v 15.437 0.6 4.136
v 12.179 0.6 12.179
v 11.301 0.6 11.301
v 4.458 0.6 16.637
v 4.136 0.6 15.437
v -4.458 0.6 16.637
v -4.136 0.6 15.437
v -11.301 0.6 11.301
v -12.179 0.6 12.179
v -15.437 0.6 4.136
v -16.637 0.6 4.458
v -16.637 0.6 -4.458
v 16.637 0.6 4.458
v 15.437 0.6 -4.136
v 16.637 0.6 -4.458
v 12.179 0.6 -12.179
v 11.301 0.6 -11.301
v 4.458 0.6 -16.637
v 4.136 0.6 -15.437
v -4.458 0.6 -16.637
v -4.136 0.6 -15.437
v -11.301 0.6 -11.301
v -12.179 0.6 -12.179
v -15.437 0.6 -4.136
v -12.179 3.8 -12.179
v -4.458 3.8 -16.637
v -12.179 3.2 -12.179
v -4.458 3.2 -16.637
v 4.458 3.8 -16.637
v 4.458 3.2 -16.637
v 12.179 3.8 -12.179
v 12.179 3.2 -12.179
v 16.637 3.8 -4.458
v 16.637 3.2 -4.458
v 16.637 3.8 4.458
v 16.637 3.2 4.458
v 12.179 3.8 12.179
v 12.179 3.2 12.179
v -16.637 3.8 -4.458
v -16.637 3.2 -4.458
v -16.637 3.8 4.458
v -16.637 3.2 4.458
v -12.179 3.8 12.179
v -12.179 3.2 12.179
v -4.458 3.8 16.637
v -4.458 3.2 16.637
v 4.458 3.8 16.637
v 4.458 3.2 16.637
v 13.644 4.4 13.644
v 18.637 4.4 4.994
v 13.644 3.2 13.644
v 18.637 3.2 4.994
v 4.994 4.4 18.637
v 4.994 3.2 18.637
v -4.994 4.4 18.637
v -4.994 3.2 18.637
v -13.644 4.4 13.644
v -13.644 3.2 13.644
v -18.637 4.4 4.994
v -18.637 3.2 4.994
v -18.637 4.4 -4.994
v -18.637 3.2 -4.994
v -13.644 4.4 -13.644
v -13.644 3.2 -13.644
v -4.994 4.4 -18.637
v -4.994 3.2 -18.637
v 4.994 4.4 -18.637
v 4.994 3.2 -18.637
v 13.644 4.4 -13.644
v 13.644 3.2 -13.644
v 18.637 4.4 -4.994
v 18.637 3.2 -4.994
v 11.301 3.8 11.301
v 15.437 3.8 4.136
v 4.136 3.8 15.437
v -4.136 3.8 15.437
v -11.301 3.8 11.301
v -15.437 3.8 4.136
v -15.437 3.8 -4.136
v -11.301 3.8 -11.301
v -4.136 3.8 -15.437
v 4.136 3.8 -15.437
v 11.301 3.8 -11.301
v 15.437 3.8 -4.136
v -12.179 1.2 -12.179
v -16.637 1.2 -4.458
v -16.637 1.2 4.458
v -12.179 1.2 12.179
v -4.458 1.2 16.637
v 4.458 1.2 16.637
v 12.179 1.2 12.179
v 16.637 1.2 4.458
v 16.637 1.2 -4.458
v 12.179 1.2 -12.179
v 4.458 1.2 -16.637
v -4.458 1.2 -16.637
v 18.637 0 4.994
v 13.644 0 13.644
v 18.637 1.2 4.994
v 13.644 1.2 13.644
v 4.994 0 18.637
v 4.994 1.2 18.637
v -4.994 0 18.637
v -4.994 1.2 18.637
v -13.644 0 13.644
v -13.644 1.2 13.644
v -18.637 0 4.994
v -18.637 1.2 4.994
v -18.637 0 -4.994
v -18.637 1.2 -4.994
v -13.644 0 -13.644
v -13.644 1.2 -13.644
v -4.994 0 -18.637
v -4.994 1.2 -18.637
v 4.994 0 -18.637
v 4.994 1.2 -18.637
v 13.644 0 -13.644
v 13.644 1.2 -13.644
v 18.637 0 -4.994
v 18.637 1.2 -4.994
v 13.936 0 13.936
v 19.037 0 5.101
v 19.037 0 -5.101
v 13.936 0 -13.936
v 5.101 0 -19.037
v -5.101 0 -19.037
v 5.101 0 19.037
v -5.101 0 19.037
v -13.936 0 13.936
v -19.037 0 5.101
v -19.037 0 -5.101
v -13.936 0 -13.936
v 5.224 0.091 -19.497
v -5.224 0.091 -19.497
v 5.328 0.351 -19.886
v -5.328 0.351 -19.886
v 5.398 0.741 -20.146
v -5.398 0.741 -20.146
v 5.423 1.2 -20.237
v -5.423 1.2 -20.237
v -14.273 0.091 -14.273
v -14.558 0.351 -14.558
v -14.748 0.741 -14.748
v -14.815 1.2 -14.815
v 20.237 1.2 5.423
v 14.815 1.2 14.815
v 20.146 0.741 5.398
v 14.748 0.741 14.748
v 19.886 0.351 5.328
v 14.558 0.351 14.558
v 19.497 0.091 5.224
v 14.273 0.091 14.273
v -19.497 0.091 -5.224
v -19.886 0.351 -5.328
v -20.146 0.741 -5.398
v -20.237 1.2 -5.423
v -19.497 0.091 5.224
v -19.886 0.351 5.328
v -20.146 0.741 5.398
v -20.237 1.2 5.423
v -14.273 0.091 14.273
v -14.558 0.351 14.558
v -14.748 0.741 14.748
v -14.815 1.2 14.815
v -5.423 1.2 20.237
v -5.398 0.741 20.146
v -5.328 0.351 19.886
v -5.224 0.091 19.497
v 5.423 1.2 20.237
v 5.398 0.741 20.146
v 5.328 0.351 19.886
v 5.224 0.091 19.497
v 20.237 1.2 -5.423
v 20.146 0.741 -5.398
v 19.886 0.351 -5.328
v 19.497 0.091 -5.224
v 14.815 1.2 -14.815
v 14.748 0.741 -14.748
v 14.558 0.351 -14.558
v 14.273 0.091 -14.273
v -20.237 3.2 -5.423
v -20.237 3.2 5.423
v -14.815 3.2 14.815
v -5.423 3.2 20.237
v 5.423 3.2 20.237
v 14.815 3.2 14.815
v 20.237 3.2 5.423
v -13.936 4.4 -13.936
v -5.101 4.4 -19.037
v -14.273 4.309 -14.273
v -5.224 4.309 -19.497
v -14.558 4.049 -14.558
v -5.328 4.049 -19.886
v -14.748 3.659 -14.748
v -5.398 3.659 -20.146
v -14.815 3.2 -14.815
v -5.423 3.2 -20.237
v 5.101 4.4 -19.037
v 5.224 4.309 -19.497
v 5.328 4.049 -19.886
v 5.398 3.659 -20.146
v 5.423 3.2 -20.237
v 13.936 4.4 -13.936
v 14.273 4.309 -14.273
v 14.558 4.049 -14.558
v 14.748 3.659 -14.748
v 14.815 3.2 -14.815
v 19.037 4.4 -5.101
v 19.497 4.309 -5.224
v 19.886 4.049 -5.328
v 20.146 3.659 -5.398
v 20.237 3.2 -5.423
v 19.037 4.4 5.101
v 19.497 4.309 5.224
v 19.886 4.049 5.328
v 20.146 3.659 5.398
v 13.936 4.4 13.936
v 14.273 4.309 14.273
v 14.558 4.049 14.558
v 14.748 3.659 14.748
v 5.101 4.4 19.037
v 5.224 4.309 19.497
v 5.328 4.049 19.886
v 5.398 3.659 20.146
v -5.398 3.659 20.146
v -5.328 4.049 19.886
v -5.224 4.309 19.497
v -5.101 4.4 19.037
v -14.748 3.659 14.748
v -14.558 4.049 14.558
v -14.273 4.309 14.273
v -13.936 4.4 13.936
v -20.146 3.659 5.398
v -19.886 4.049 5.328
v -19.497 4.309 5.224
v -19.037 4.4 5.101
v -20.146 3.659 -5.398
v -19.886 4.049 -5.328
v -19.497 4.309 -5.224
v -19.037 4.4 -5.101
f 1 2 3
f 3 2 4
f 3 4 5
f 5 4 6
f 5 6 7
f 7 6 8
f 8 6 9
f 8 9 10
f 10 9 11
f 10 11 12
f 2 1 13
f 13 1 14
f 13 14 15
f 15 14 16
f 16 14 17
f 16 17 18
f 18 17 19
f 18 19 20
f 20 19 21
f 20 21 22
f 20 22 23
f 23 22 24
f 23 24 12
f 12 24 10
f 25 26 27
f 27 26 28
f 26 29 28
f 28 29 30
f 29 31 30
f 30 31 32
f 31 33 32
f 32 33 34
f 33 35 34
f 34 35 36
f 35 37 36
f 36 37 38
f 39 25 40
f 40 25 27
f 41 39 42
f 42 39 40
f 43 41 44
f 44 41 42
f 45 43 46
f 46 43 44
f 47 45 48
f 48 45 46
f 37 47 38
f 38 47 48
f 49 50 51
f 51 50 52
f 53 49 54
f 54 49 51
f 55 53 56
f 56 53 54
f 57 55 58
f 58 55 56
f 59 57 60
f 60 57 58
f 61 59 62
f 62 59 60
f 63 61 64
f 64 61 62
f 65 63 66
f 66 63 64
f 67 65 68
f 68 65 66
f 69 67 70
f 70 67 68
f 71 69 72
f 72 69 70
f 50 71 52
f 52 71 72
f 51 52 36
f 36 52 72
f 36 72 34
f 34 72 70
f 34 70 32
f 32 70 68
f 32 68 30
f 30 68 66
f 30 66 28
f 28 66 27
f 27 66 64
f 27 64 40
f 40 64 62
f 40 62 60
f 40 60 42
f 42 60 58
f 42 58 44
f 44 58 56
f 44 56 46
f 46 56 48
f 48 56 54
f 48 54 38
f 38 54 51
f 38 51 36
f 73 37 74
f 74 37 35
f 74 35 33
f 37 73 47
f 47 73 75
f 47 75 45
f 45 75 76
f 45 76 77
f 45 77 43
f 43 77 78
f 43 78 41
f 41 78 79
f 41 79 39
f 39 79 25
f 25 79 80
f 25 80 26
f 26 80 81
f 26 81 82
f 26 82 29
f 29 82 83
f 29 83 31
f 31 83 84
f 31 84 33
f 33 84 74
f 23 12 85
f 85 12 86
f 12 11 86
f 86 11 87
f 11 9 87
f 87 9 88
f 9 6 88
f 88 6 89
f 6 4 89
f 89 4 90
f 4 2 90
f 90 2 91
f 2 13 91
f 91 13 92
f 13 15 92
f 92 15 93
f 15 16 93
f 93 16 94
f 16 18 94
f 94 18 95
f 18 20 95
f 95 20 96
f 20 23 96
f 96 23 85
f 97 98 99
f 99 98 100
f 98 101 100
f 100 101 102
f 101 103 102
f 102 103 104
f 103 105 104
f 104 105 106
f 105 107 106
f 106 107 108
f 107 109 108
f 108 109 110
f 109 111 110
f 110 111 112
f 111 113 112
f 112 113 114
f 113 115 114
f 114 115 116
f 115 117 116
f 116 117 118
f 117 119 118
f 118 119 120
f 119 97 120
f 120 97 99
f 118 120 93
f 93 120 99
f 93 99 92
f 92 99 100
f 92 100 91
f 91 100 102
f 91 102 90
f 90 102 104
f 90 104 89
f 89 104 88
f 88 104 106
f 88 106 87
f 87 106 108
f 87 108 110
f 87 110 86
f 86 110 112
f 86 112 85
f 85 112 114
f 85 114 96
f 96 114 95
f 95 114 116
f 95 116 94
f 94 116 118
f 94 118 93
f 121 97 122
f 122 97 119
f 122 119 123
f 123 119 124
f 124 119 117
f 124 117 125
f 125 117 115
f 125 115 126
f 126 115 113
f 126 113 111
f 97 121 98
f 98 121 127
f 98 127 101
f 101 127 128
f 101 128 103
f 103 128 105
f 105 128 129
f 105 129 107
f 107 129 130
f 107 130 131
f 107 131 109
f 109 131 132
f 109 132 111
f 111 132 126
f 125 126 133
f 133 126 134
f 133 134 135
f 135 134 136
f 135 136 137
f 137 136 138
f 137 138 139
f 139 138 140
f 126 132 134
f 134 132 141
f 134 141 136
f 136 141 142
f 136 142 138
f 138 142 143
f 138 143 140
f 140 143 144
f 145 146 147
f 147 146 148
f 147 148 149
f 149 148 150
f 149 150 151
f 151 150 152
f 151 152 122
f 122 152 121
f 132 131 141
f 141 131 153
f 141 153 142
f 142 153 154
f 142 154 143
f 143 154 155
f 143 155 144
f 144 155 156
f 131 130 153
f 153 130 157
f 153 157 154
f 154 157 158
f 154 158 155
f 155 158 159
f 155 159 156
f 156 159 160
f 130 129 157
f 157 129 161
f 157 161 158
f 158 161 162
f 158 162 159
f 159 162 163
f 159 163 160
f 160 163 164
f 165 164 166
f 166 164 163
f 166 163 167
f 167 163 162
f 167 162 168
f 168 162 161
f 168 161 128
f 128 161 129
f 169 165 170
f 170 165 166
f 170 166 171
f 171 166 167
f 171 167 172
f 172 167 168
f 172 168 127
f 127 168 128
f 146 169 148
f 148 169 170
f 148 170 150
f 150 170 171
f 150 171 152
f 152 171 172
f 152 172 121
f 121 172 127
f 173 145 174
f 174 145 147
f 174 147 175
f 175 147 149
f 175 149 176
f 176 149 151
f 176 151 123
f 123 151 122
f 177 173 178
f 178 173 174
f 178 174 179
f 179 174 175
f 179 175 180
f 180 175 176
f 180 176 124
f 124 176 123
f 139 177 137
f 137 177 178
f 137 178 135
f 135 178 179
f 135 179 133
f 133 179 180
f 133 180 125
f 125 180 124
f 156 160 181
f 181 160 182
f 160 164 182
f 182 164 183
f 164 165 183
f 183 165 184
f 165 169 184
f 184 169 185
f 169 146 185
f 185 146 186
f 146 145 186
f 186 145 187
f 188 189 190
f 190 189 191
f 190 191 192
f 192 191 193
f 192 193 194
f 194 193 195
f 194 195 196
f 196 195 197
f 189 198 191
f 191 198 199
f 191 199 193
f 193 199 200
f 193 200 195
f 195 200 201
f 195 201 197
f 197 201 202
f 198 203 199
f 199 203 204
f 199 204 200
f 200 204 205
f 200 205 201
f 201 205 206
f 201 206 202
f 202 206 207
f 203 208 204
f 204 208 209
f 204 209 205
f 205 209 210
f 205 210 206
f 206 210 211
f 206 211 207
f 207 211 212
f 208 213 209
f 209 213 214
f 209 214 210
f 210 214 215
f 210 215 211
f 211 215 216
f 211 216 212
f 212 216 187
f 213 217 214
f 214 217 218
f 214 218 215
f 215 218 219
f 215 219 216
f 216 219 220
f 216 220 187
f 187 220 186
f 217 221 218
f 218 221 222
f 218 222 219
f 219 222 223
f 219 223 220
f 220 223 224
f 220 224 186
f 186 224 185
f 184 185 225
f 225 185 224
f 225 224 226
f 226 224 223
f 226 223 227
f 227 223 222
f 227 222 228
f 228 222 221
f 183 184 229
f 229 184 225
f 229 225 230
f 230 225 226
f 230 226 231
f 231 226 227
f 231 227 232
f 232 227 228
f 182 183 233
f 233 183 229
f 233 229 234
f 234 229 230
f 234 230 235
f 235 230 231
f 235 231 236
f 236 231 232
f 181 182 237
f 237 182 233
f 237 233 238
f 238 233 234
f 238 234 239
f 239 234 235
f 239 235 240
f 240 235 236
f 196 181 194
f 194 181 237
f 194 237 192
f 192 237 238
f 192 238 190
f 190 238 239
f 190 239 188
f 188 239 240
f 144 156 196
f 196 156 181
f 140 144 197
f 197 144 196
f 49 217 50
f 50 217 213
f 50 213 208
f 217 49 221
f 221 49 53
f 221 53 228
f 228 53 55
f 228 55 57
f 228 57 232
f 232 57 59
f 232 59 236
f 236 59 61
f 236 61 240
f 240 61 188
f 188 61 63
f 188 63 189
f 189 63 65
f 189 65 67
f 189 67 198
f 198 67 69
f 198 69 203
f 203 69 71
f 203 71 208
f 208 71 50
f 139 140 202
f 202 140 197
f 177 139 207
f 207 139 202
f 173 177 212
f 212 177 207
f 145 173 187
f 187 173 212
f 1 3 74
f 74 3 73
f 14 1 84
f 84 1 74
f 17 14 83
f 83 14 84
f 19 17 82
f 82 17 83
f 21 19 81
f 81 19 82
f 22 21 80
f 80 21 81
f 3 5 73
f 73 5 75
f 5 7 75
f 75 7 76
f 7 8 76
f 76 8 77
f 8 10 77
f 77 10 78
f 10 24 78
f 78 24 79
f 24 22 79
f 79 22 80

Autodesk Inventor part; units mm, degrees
ref_plane "YZ Plane" through (0, 0, 0) normal (1, 0, 0) x (0, 1, 0)
ref_plane "XZ Plane" through (0, 0, 0) normal (0, 1, 0) x (-1, 0, 0)
sketch "스케치1" plane through (0, 0, 0) normal (0, 1, 0) x (-1, 0, 0)
  line L0 (12.4723, -12.4723) -> (4.5652, -17.0375)
  line L1 (4.5652, -17.0375) -> (-4.5652, -17.0375)
  line L2 (-4.5652, -17.0375) -> (-12.4723, -12.4723)
  line L3 (-12.4723, -12.4723) -> (-17.0375, -4.5652)
  line L4 (-17.0375, -4.5652) -> (-17.0375, 4.5652)
  line L5 (-17.0375, 4.5652) -> (-12.4723, 12.4723)
  line L6 (-12.4723, 12.4723) -> (-4.5652, 17.0375)
  line L7 (-4.5652, 17.0375) -> (4.5652, 17.0375)
  line L8 (4.5652, 17.0375) -> (12.4723, 12.4723)
  line L9 (12.4723, 12.4723) -> (17.0375, 4.5652)
  line L10 (17.0375, 4.5652) -> (17.0375, -4.5652)
  line L11 (17.0375, -4.5652) -> (12.4723, -12.4723)
  line L12 (-5.4226, 20.2375) -> (5.4226, 20.2375)
  line L13 (5.4226, 20.2375) -> (14.8149, 14.8149)
  line L14 (14.8149, 14.8149) -> (20.2375, 5.4226)
  line L15 (20.2375, 5.4226) -> (20.2375, -5.4226)
  line L16 (20.2375, -5.4226) -> (14.8149, -14.8149)
  line L17 (14.8149, -14.8149) -> (5.4226, -20.2375)
  line L18 (5.4226, -20.2375) -> (-5.4226, -20.2375)
  line L19 (-5.4226, -20.2375) -> (-14.8149, -14.8149)
  line L20 (-14.8149, -14.8149) -> (-20.2375, -5.4226)
  line L21 (-20.2375, -5.4226) -> (-20.2375, 5.4226)
  line L22 (-20.2375, 5.4226) -> (-14.8149, 14.8149)
  line L23 (-14.8149, 14.8149) -> (-5.4226, 20.2375)
  point P0 (0, 0)
  point P1 (0, 0)
  point P2 (0, 0)
  dimension "d0" = 35.277
  dimension "d1" = 3.2
extrude "돌출1" add sketch "스케치1" along normal blind 4.4 contours L0 L1 L2 L3 L4 L5 L6 L7 L8 L9 L10 L11 | L12 L13 L14 L15 L16 L17 L18 L19 L20 L21 L22 L23
fillet "모깎기1" radius 1.2 24 edges at (10.1187, 4.4, 17.5262) (17.5262, 4.4, 10.1187) (20.2375, 4.4, 0) (17.5262, 4.4, -10.1187) (10.1187, 4.4, -17.5262) (0, 4.4, -20.2375) (-10.1187, 4.4, -17.5262) (-17.5262, 4.4, -10.1187) (-20.2375, 4.4, 0) (-17.5262, 4.4, 10.1187) (-10.1187, 4.4, 17.5262) (0, 4.4, 20.2375) (-10.1187, 0, 17.5262) (-17.5262, 0, 10.1187) (-20.2375, 0, 0) (-10.1187, 0, -17.5262) (-17.5262, 0, -10.1187) (0, 0, -20.2375) (10.1187, 0, -17.5262) (17.5262, 0, -10.1187) (20.2375, 0, 0) (17.5262, 0, 10.1187) (10.1187, 0, 17.5262) (0, 0, 20.2375)
sketch "스케치6" plane through (0, 0, 0) normal (0, -1, 0) x (1, 0, 0)
  line L0 (13.6436, -13.6436) -> (4.9939, -18.6375)
  line L1 (4.9939, -18.6375) -> (-4.9939, -18.6375)
  line L2 (-4.9939, -18.6375) -> (-13.6436, -13.6436)
  line L3 (-13.6436, -13.6436) -> (-18.6375, -4.9939)
  line L4 (-18.6375, -4.9939) -> (-18.6375, 4.9939)
  line L5 (-18.6375, 4.9939) -> (-13.6436, 13.6436)
  line L6 (-13.6436, 13.6436) -> (-4.9939, 18.6375)
  line L7 (-4.9939, 18.6375) -> (4.9939, 18.6375)
  line L8 (4.9939, 18.6375) -> (13.6436, 13.6436)
  line L9 (13.6436, 13.6436) -> (18.6375, 4.9939)
  line L10 (18.6375, 4.9939) -> (18.6375, -4.9939)
  line L11 (18.6375, -4.9939) -> (13.6436, -13.6436)
  line L12 (20.2375, 5.4226) -> (14.8149, 14.8149) projected
  line L13 (4.458, 16.6375) -> (12.1795, 12.1795)
  line L14 (12.1795, 12.1795) -> (16.6375, 4.458)
  line L15 (16.6375, 4.458) -> (16.6375, -4.458)
  line L16 (16.6375, -4.458) -> (12.1795, -12.1795)
  line L17 (12.1795, -12.1795) -> (4.458, -16.6375)
  line L18 (4.458, -16.6375) -> (-4.458, -16.6375)
  line L19 (-4.458, -16.6375) -> (-12.1795, -12.1795)
  line L20 (-12.1795, -12.1795) -> (-16.6375, -4.458)
  line L21 (-16.6375, -4.458) -> (-16.6375, 4.458)
  line L22 (-16.6375, 4.458) -> (-12.1795, 12.1795)
  line L23 (-12.1795, 12.1795) -> (-4.458, 16.6375)
  line L24 (-4.458, 16.6375) -> (4.458, 16.6375)
  point P0 (0, 0)
  point P1 (0, 0)
  point P2 (0, 0)
  dimension "d20" = 1.6
  dimension "d21" = 2
extrude "돌출6" cut sketch "스케치6" against normal blind 1.2
sketch "스케치7" plane through (0, 0, 0) normal (0, -1, 0) x (1, 0, 0)
  line L0 (16.6375, 4.458) -> (12.1795, 12.1795) projected
  line L1 (12.1795, 12.1795) -> (4.458, 16.6375) projected
  line L2 (4.458, 16.6375) -> (-4.458, 16.6375) projected
  line L3 (-4.458, 16.6375) -> (-12.1795, 12.1795) projected
  line L4 (-12.1795, 12.1795) -> (-16.6375, 4.458) projected
  line L5 (-16.6375, 4.458) -> (-16.6375, -4.458) projected
  line L6 (-16.6375, -4.458) -> (-12.1795, -12.1795) projected
  line L7 (-12.1795, -12.1795) -> (-4.458, -16.6375) projected
  line L8 (-4.458, -16.6375) -> (4.458, -16.6375) projected
  line L9 (4.458, -16.6375) -> (12.1795, -12.1795) projected
  line L10 (12.1795, -12.1795) -> (16.6375, -4.458) projected
  line L11 (16.6375, -4.458) -> (16.6375, 4.458) projected
  point P0 (0, 0)
extrude "돌출7" cut sketch "스케치7" against normal blind 0.6
ref_plane "작업 평면1" through (0, 2.2, 0) normal (0, 1, 0) x (1, 0, 0)
mirror "미러1" about plane through (0, 2.2, 0) normal (0, 1, 0) of "돌출7", "돌출6"
sketch "스케치10" plane through (-4.458, 3.8, -16.6375) normal (0, 1, 0) x (1, 0, 0)
  line L0 (0.3215, -32.075) -> (-6.843, -27.9385)
  line L1 (-6.843, -27.9385) -> (-10.9795, -20.7739)
  line L2 (-10.9795, -20.7739) -> (-10.9795, -12.501)
  line L3 (-10.9795, -12.501) -> (-6.843, -5.3365)
  line L4 (-6.843, -5.3365) -> (0.3215, -1.2)
  line L5 (0.3215, -1.2) -> (8.5945, -1.2)
  line L6 (8.5945, -1.2) -> (15.759, -5.3365)
  line L7 (15.759, -5.3365) -> (19.8955, -12.501)
  line L8 (19.8955, -12.501) -> (19.8955, -20.7739)
  line L9 (19.8955, -20.7739) -> (15.759, -27.9385)
  line L10 (15.759, -27.9385) -> (8.5945, -32.075)
  line L11 (8.5945, -32.075) -> (0.3215, -32.075)
  line L12 (8.916, -33.275) -> (0, -33.275) projected
  point P0 (4.458, -16.6375)
  point P1 (4.458, -16.6375)
  dimension "d37" = 1.2
extrude "돌출10" cut sketch "스케치10" against normal blind 10
properties part number "(x0.5)_POSPA_Tiny_Top"
